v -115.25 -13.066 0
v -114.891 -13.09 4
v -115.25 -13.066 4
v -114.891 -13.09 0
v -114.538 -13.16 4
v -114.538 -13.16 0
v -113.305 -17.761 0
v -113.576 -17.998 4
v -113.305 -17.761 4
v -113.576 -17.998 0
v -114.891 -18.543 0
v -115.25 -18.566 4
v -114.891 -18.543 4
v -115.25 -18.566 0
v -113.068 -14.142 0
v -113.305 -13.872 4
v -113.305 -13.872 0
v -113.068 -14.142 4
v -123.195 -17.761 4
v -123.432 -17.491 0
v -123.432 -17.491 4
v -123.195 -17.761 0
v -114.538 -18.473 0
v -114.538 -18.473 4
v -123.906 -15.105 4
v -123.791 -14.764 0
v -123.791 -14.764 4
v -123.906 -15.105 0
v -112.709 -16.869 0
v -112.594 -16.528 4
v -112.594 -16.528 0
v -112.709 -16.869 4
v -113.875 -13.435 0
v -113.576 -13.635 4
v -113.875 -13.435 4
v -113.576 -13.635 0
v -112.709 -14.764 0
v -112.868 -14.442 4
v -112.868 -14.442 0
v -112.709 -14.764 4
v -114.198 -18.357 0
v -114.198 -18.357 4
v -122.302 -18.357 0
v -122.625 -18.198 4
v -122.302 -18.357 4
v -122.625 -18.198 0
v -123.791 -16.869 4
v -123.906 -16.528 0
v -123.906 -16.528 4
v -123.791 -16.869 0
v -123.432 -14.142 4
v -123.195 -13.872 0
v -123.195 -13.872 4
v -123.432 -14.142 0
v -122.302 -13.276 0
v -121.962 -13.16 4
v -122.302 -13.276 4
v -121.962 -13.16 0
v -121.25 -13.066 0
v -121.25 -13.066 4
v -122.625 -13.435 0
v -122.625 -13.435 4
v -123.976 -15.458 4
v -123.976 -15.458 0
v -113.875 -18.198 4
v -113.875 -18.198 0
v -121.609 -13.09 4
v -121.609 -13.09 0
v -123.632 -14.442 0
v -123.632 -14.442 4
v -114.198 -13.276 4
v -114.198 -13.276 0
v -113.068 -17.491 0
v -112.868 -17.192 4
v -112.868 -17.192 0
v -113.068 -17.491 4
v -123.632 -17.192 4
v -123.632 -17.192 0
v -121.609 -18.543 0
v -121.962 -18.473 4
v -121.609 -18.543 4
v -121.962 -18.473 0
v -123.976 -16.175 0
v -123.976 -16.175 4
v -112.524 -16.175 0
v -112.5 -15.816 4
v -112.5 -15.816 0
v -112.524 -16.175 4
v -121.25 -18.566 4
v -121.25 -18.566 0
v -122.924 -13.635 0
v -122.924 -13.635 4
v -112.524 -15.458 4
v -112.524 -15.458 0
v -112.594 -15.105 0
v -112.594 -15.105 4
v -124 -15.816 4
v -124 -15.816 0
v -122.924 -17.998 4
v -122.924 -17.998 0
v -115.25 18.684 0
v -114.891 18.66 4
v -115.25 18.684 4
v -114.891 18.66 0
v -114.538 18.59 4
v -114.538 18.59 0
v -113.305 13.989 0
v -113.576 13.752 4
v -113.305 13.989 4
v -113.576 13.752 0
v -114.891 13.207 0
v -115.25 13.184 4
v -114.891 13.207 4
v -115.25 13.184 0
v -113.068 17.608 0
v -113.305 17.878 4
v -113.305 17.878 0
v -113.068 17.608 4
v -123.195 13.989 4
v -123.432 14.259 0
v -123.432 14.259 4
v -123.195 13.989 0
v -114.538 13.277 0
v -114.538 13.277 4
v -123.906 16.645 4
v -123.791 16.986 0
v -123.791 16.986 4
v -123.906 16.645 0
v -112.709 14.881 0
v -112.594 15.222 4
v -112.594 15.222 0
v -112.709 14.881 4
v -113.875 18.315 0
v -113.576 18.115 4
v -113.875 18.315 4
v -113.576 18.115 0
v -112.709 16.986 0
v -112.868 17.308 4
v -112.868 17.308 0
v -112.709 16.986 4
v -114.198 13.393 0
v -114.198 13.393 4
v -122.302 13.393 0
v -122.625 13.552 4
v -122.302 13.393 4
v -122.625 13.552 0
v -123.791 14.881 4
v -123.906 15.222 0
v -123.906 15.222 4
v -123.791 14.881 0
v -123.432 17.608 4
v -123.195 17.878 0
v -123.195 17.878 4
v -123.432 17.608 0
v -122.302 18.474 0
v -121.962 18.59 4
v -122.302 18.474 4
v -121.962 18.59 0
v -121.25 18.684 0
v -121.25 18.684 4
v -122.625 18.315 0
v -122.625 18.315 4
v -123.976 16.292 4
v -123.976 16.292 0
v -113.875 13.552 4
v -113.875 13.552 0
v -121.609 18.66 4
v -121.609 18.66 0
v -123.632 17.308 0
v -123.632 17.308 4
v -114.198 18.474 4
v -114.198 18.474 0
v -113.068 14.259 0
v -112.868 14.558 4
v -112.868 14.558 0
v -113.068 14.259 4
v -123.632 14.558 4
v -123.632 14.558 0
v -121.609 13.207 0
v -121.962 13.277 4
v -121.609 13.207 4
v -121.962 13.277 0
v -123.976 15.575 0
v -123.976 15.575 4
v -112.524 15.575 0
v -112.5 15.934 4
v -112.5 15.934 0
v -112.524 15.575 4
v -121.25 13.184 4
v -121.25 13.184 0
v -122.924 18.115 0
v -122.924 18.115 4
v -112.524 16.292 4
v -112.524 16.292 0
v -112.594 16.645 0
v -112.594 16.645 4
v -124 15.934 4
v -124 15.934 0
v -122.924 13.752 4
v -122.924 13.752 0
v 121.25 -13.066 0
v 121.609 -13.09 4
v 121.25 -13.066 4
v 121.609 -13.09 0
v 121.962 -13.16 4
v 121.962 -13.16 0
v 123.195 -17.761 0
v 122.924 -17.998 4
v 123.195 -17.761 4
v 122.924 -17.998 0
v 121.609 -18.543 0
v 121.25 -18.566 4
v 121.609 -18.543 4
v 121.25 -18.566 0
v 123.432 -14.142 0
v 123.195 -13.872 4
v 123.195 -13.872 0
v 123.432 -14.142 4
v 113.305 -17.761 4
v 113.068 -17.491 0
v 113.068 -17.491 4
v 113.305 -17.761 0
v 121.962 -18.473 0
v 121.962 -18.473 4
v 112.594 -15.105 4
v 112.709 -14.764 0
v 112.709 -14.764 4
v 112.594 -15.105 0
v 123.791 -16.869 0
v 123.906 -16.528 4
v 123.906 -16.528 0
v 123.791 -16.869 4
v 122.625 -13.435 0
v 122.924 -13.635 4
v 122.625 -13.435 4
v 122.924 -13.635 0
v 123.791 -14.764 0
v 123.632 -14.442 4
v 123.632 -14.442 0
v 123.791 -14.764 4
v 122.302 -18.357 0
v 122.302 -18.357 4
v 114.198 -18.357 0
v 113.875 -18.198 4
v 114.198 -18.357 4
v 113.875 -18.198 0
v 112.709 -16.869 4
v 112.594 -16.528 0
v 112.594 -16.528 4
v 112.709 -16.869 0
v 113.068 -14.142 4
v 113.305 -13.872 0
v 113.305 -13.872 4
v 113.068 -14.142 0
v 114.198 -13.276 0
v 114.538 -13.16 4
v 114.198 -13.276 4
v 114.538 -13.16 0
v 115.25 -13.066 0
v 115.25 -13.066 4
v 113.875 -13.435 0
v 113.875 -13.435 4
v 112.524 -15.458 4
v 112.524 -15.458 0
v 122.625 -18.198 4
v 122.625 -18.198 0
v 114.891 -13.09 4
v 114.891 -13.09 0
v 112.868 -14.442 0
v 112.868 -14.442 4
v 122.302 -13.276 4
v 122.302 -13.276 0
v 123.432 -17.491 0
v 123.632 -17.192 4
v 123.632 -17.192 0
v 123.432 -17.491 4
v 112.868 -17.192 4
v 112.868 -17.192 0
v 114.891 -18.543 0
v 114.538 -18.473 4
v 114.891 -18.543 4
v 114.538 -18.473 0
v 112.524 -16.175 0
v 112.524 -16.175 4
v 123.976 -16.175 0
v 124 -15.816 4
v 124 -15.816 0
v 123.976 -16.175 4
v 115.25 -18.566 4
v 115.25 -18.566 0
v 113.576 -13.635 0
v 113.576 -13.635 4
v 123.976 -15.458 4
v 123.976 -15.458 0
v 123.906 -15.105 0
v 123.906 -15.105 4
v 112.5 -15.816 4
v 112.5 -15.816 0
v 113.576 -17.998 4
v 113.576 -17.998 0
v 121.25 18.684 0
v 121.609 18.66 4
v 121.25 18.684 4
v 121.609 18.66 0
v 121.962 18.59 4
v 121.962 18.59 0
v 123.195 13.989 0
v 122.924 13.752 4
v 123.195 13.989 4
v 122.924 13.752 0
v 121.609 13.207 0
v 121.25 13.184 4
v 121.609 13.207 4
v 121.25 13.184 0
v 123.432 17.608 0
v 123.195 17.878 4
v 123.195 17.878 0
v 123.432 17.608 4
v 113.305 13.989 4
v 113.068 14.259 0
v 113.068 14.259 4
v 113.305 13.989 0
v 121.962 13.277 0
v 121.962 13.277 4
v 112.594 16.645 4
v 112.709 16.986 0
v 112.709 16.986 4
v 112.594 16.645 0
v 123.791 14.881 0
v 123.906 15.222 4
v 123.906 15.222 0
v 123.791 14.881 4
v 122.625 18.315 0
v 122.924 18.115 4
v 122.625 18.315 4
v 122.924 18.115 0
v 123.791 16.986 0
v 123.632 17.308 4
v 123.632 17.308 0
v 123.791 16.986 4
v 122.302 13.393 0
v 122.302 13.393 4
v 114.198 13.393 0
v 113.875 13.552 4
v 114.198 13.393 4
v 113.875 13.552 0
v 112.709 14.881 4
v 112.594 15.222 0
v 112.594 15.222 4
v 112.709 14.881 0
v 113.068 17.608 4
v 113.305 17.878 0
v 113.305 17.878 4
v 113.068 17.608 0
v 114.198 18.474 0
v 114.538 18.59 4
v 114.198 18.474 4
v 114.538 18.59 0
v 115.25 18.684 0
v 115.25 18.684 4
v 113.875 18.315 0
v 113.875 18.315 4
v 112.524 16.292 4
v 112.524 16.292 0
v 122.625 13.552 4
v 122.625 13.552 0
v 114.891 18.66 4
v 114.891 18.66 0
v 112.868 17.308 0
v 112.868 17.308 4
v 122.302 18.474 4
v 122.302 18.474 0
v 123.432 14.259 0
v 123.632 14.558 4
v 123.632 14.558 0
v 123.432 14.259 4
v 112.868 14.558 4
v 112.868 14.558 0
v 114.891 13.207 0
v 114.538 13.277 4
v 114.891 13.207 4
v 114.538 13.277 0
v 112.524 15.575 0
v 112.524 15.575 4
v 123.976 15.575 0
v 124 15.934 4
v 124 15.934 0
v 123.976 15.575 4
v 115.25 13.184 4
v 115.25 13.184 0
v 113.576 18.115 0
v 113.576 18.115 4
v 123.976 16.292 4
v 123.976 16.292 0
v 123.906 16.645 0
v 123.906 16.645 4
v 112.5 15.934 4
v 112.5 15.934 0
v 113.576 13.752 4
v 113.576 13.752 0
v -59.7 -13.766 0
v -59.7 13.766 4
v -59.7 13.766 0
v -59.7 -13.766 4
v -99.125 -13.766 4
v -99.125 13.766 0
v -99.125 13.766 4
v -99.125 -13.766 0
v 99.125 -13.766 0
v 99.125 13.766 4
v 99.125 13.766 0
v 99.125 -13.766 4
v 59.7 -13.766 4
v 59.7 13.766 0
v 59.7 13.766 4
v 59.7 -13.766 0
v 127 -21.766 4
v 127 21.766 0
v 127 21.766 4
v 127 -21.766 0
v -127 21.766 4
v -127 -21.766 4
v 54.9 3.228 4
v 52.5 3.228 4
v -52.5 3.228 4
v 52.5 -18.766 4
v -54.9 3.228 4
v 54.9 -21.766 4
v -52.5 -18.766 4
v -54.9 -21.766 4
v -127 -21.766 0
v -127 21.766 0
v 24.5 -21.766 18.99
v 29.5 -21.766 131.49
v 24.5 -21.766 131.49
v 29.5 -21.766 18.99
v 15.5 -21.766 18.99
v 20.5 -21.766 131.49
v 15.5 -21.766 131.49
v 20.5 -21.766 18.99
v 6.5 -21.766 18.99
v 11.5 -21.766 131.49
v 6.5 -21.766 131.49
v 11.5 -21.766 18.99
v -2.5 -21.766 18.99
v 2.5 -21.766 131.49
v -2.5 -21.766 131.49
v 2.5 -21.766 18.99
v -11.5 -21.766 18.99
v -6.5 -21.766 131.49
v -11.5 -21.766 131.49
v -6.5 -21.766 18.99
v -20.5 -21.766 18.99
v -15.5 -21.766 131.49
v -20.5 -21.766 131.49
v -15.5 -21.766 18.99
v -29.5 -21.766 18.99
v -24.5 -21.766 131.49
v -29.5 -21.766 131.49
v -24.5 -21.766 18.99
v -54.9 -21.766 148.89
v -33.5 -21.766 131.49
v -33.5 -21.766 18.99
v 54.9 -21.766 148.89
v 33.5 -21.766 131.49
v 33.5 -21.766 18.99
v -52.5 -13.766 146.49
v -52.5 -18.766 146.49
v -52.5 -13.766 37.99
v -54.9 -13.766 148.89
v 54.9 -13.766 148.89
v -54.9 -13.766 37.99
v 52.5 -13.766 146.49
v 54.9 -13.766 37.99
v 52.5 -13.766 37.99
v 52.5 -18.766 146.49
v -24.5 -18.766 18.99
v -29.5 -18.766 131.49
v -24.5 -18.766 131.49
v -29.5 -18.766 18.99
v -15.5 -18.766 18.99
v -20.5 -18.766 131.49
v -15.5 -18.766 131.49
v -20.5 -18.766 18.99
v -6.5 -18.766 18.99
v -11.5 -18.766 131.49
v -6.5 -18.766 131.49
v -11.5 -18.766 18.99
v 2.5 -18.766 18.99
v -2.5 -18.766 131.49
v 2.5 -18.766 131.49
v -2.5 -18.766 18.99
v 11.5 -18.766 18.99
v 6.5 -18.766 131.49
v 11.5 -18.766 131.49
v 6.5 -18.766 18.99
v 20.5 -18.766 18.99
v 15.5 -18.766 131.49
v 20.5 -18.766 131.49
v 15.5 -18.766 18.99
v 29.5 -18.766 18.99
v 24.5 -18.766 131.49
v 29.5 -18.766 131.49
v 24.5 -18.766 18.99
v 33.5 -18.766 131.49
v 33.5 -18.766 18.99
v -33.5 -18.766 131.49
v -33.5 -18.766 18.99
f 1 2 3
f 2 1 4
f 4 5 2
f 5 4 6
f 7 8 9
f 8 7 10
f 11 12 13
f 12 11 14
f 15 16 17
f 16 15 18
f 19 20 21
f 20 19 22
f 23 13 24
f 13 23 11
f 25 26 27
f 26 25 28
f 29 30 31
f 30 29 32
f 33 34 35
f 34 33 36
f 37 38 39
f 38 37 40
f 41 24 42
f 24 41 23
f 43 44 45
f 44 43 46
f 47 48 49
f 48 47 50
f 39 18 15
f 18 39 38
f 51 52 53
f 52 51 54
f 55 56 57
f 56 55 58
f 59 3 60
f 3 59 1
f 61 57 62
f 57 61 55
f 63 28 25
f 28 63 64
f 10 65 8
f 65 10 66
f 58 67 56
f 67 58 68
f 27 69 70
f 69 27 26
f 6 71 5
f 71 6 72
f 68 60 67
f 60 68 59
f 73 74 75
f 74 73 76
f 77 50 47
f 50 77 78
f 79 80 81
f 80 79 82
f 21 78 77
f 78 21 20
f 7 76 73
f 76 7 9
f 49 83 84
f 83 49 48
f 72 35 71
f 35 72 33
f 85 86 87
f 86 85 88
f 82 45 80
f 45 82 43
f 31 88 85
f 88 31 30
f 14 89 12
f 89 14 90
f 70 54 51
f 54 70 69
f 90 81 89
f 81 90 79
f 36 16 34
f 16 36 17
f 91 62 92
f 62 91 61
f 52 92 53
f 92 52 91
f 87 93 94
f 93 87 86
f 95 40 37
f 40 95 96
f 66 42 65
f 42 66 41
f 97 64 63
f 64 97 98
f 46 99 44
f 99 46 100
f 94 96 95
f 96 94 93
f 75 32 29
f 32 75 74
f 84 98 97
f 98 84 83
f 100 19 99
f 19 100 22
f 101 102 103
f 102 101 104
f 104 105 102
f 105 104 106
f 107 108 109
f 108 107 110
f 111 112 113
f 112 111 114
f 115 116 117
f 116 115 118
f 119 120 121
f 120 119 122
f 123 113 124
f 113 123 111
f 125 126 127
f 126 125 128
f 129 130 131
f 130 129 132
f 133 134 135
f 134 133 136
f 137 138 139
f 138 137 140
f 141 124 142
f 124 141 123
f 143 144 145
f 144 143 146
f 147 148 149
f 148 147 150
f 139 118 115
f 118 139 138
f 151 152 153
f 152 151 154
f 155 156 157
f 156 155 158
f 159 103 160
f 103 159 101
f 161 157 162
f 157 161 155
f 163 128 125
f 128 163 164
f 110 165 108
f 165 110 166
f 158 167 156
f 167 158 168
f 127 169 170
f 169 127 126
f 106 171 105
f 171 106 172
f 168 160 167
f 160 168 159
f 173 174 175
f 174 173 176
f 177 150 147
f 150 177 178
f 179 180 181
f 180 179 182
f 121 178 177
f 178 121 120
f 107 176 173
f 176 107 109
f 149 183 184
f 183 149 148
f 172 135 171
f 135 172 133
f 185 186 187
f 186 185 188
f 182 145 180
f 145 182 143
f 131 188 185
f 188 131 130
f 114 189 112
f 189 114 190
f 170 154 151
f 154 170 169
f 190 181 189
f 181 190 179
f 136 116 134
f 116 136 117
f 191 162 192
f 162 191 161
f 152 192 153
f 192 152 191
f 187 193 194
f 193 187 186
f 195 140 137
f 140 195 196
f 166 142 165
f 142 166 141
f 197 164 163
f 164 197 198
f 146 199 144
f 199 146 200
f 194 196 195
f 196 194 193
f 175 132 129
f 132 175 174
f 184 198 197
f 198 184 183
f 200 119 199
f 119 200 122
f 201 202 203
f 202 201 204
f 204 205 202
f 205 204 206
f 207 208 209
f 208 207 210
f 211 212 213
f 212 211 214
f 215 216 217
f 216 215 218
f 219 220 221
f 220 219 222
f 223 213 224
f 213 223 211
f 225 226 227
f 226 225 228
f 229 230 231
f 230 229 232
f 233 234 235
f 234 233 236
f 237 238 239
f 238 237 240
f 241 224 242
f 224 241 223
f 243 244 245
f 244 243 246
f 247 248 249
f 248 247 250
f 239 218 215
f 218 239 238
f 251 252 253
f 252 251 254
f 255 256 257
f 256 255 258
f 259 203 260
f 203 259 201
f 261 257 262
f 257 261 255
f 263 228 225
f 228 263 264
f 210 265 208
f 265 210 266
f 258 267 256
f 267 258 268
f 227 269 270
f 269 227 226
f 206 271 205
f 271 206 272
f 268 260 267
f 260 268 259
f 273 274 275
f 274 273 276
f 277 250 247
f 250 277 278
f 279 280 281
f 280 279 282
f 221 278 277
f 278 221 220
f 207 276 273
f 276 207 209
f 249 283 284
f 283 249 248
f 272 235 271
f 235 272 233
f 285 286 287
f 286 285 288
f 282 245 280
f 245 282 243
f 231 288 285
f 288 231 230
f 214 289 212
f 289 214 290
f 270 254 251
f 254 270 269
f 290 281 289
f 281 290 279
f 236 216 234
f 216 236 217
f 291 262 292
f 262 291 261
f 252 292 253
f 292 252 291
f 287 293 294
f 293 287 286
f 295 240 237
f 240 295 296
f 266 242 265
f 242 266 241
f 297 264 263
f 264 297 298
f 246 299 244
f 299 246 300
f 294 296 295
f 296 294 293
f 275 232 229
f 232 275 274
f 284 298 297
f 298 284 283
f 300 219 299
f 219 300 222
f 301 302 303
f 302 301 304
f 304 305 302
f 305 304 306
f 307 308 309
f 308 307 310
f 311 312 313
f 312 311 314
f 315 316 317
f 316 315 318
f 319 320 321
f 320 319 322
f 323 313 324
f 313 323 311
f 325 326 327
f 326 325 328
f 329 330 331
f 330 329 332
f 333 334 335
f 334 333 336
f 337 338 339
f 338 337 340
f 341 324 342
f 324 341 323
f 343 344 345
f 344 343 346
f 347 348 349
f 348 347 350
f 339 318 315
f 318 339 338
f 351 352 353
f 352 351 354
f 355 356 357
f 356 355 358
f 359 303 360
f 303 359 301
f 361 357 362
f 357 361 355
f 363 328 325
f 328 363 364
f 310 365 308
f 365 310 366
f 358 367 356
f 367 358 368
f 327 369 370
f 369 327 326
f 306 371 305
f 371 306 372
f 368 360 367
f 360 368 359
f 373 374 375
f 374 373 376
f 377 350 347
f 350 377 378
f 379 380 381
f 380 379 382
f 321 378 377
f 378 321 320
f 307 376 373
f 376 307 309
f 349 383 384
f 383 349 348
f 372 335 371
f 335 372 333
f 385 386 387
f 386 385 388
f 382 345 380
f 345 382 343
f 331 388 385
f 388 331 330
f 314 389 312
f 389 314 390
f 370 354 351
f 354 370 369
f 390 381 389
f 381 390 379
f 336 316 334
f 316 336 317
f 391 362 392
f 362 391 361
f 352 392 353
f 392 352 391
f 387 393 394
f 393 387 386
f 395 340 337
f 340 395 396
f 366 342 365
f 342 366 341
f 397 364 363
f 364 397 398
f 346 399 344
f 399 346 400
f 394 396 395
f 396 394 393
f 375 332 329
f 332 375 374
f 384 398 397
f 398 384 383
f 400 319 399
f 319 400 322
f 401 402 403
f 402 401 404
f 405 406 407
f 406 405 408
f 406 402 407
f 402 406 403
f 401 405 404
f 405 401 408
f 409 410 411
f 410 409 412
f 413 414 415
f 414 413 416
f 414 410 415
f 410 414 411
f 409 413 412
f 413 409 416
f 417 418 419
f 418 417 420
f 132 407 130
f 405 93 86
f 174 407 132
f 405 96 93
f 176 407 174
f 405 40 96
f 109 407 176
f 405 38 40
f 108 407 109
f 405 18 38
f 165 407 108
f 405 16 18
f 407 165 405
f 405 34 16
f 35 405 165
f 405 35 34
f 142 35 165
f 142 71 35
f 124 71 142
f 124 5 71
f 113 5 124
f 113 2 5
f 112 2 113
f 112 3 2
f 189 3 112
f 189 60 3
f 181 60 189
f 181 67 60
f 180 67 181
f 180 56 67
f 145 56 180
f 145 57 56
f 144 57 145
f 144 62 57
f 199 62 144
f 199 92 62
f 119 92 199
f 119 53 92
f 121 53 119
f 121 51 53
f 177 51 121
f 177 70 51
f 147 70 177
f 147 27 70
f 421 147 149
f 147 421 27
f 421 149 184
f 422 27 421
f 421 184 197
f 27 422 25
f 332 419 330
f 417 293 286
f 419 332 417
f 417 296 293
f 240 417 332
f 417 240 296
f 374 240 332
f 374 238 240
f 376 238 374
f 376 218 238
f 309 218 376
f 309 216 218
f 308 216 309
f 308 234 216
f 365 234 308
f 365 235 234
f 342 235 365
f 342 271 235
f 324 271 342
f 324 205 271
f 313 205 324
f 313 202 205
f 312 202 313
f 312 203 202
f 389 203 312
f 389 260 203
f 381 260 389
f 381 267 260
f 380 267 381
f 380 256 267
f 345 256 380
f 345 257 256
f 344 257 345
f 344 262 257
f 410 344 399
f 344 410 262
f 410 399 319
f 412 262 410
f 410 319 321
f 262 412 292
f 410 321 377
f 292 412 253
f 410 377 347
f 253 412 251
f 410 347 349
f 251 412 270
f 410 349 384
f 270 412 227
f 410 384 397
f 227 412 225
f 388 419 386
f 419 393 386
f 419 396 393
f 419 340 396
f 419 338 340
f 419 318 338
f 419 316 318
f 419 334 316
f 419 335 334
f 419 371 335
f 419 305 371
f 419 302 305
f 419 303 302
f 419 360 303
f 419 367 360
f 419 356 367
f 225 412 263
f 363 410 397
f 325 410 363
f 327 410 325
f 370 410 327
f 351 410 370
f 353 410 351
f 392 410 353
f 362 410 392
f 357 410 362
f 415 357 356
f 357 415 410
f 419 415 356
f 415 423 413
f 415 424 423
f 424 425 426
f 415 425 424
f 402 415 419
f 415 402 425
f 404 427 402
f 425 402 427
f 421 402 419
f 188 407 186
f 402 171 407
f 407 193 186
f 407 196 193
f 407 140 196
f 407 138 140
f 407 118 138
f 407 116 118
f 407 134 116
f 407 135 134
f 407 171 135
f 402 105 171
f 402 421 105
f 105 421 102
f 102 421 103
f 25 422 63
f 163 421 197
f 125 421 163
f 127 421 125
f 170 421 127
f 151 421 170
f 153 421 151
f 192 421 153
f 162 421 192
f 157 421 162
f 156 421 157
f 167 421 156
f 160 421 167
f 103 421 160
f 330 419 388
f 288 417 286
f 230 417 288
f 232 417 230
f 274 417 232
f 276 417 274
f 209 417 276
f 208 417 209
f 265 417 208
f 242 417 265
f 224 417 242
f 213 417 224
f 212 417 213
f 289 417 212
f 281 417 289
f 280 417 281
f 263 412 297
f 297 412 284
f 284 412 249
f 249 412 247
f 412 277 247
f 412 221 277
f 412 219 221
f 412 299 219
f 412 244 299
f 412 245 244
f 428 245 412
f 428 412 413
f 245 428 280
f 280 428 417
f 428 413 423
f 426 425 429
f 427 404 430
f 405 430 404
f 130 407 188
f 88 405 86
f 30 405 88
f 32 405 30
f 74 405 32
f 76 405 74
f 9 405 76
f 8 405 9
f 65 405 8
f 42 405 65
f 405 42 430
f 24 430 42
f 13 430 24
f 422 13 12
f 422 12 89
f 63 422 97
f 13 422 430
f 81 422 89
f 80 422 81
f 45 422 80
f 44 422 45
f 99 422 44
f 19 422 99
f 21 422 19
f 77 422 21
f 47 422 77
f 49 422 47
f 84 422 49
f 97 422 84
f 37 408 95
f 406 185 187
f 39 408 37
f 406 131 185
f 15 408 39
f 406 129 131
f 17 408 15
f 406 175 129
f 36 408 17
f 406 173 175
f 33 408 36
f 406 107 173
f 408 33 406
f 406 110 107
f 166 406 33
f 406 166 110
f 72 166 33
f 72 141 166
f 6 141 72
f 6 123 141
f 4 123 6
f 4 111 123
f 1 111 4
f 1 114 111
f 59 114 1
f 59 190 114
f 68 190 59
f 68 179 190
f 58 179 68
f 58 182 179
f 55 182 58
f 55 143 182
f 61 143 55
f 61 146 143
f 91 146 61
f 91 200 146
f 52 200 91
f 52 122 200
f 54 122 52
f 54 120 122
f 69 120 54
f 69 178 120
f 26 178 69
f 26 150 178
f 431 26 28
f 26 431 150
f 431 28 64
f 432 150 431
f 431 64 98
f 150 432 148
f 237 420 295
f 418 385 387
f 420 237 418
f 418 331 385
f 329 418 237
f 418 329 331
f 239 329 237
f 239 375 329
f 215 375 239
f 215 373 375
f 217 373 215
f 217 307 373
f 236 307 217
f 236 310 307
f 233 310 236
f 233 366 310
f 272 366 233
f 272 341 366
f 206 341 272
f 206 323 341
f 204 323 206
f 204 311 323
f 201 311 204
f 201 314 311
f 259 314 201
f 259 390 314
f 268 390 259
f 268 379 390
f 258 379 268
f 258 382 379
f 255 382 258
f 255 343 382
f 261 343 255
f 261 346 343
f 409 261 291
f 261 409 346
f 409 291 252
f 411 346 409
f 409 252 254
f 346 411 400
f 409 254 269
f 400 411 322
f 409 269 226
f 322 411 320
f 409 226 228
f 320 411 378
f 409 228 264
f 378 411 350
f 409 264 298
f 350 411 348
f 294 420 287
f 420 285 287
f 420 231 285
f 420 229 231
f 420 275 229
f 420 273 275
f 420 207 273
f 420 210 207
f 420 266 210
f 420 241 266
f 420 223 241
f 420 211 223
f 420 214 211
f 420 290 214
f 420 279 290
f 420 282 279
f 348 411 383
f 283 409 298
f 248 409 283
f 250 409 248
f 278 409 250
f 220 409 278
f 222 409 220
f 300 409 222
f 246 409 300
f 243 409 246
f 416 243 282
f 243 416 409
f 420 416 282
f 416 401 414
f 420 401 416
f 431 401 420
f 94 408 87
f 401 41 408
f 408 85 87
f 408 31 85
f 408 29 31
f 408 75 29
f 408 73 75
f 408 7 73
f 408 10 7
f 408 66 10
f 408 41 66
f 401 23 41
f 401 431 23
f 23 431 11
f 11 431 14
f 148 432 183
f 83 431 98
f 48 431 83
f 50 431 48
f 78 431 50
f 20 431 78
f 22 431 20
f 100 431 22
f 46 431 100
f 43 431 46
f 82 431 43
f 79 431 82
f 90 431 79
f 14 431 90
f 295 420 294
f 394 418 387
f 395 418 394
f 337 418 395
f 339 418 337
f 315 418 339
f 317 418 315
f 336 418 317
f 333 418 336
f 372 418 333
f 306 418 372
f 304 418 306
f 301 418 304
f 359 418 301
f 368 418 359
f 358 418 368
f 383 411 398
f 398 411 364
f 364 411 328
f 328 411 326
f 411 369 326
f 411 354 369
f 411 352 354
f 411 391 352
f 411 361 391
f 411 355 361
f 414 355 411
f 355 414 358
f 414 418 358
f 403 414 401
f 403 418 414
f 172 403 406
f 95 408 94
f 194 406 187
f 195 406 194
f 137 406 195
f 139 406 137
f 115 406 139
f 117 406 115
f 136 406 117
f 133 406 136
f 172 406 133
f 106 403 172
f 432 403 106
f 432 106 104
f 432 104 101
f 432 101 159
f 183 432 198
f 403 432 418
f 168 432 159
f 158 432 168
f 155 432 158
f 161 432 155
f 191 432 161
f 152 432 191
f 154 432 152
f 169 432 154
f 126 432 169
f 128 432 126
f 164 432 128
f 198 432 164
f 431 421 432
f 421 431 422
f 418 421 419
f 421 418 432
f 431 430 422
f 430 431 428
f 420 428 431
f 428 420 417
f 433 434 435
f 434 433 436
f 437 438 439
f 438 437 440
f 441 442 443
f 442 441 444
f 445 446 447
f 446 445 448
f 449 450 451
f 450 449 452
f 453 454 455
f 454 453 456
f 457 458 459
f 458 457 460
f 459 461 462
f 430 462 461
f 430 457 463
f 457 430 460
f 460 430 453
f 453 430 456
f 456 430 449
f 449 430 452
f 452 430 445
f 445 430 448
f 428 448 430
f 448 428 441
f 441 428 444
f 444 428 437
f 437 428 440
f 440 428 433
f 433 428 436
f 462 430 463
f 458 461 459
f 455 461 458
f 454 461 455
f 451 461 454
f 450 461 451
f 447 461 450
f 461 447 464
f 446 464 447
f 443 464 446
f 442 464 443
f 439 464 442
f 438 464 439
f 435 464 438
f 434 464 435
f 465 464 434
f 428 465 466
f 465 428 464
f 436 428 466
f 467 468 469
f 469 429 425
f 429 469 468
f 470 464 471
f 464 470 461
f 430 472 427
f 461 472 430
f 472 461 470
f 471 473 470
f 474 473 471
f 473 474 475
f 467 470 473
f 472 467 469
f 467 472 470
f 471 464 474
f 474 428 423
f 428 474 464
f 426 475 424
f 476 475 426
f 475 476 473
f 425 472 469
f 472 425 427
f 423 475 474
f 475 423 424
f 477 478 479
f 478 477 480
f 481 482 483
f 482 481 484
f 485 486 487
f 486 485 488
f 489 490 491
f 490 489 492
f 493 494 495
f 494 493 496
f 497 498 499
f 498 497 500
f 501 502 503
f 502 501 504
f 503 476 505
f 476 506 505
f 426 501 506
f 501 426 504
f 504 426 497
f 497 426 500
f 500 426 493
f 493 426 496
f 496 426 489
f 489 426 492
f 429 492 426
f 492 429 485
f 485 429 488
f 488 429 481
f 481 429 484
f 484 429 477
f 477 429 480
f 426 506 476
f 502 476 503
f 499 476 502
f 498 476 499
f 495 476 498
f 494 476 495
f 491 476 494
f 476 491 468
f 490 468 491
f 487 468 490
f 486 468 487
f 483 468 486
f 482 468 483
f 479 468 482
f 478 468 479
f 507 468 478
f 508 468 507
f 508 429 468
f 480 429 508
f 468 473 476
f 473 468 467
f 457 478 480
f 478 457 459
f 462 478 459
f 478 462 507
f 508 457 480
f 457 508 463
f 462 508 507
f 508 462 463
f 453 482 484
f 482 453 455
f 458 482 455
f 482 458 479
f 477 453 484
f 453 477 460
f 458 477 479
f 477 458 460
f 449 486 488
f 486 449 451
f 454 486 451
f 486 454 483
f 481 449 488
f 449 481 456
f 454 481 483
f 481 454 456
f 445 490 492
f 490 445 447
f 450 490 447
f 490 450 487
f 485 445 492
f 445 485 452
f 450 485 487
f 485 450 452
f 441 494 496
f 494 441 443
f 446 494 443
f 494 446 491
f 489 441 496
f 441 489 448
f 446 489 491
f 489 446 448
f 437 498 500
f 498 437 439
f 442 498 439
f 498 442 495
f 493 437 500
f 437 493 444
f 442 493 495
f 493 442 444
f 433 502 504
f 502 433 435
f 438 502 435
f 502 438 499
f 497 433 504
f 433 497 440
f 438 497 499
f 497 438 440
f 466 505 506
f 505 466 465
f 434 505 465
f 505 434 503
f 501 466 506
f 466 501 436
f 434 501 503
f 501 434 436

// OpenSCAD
// Tempest hub tray: a 1U plate that bolts to the REAR legs of the KWS
// Rack v2 with a small tray cantilevered forward into the rack, so the hub
// no longer sits on the Beelink EQ14's lid.
//
// Placement: rear of U7, directly above the EQ14 (U6). The tray floor sits
// at the bottom of U7, about 3 mm above the EQ14's lid, and reaches forward
// over the back of the EQ14. The display's board (front of U7-8) is well
// clear: it only reaches ~30 mm behind the front rails.
//
// The plate has openings either side of the tray so it doesn't block the rear
// airflow, and low lips on the tray hold the hub without covering its
// side USB plug (the plug sits well above a 5 mm lip).
//
// Print plate-down on the bed; the tray rises vertically, no supports. PETG.
//
// Coordinates: x across the rack, y up, z = depth into the rack from the
// rear legs. The part is symmetric, so seen from the back or the front it's
// the same.

$fn = 48;

// --- rack (KWS Rack v2, rear legs) ---
rack_u          = 44.333;         // KWS legs: measured pitch per the 9U build sheet
panel_h         = rack_u - 0.8;
panel_w         = 254;
rail_opening    = 222.25;
// Rear hole spacing, center to center. Front holes are 236.5 (confirmed by
// the faceplates). The KWS sheet lists different front and rear numbers,
// so MEASURE THE REAR LEGS before printing and set this.
rear_hole_pitch = 236.5;
ear_hole_d      = 5.5;            // M5 clearance
ear_hole_slot   = 6;              // generous horizontal slot, +/- 3 mm
hole_y_in_u     = [6.35, 38.1];   // outer holes of the U

// --- plate ---
plate_t         = 4;
window_margin_x = 12;             // solid band left inside the ears
window_margin_y = 8;              // top and bottom beams

// --- Tempest hub (caliper-measured 2026-11-16). The antenna rotates up;
// above the tray is open space (rear U8). ---
hub_w           = 102;            // measured
hub_d           = 141;            // measured, front to back
hub_h           = 35;             // measured, antenna folded down
hub_clear       = 1.5;            // per side

// --- tray ---
floor_t         = 3;              // ~150 mm cantilever
lip_h           = 5;              // above the floor, all three sides
lip_t           = 2.4;
gusset_l        = 50;             // along the tray
gusset_h        = 25;             // up the plate
vent_slot_w     = 4;
vent_slot_pitch = 9;
vent_margin     = 15;

// ---------------------------------------------------------------------

bay_w           = hub_w + 2 * hub_clear;
bay_d           = hub_d + hub_clear;
outer_w         = bay_w + 2 * lip_t;
floor_y         = -panel_h / 2;   // floor underside = plate bottom edge

module ear_holes() {
    for (x = [-1, 1], hy = hole_y_in_u)
        translate([x * rear_hole_pitch / 2, -rack_u / 2 + hy, -1])
            hull() for (dx = [-ear_hole_slot / 2, ear_hole_slot / 2])
                translate([dx, 0, 0]) cylinder(d = ear_hole_d, h = plate_t + 2);
}

module plate() {
    win_w = rail_opening - 2 * window_margin_x;
    win_h = panel_h - 2 * window_margin_y;
    difference() {
        translate([-panel_w / 2, -panel_h / 2, 0])
            cube([panel_w, panel_h, plate_t]);
        ear_holes();
        // airflow / cable openings either side of the tray; the plate stays
        // solid behind the tray so the floor and gussets have something to
        // hang from
        side_w = (win_w - outer_w) / 2 - 2 * lip_t;
        for (s = [-1, 1])
            translate([s * (win_w / 2 - side_w / 2) - side_w / 2, -win_h / 2, -1])
                cube([side_w, win_h, plate_t + 2]);
    }
}

module tray() {
    z0 = plate_t - 0.01;
    difference() {
        union() {
            // floor
            translate([-outer_w / 2, floor_y, z0])
                cube([outer_w, floor_t, bay_d + lip_t]);
            // side lips
            for (s = [-1, 1])
                translate([s * (bay_w / 2 + lip_t / 2) - lip_t / 2, floor_y, z0])
                    cube([lip_t, floor_t + lip_h, bay_d + lip_t]);
            // far lip (toward the front of the rack)
            translate([-outer_w / 2, floor_y, z0 + bay_d])
                cube([outer_w, floor_t + lip_h, lip_t]);
            // gussets tying the floor to the plate, on the lips
            for (s = [-1, 1])
                translate([s * (bay_w / 2 + lip_t / 2) - lip_t / 2, floor_y, z0])
                    rotate([90, 0, 90])
                        linear_extrude(lip_t)
                            polygon([[0, 0], [gusset_h, 0], [0, gusset_l]]);
        }
        // floor vents, front-to-back
        n = floor((bay_w - 2 * vent_margin) / vent_slot_pitch);
        for (i = [0 : n - 1])
            translate([-(n - 1) * vent_slot_pitch / 2 + i * vent_slot_pitch - vent_slot_w / 2,
                       floor_y - 1, z0 + vent_margin])
                cube([vent_slot_w, floor_t + 2, bay_d - 2 * vent_margin]);
    }
}

union() { plate(); tray(); }

// Sanity checks
assert(floor_t + hub_h <= panel_h + 0.8, "hub taller than 1U");
assert(gusset_l < bay_d, "gussets longer than the tray");
assert(outer_w <= rail_opening - 2 * window_margin_x, "tray wider than the plate opening band");
assert(gusset_h <= panel_h - window_margin_y, "gusset taller than the plate");
